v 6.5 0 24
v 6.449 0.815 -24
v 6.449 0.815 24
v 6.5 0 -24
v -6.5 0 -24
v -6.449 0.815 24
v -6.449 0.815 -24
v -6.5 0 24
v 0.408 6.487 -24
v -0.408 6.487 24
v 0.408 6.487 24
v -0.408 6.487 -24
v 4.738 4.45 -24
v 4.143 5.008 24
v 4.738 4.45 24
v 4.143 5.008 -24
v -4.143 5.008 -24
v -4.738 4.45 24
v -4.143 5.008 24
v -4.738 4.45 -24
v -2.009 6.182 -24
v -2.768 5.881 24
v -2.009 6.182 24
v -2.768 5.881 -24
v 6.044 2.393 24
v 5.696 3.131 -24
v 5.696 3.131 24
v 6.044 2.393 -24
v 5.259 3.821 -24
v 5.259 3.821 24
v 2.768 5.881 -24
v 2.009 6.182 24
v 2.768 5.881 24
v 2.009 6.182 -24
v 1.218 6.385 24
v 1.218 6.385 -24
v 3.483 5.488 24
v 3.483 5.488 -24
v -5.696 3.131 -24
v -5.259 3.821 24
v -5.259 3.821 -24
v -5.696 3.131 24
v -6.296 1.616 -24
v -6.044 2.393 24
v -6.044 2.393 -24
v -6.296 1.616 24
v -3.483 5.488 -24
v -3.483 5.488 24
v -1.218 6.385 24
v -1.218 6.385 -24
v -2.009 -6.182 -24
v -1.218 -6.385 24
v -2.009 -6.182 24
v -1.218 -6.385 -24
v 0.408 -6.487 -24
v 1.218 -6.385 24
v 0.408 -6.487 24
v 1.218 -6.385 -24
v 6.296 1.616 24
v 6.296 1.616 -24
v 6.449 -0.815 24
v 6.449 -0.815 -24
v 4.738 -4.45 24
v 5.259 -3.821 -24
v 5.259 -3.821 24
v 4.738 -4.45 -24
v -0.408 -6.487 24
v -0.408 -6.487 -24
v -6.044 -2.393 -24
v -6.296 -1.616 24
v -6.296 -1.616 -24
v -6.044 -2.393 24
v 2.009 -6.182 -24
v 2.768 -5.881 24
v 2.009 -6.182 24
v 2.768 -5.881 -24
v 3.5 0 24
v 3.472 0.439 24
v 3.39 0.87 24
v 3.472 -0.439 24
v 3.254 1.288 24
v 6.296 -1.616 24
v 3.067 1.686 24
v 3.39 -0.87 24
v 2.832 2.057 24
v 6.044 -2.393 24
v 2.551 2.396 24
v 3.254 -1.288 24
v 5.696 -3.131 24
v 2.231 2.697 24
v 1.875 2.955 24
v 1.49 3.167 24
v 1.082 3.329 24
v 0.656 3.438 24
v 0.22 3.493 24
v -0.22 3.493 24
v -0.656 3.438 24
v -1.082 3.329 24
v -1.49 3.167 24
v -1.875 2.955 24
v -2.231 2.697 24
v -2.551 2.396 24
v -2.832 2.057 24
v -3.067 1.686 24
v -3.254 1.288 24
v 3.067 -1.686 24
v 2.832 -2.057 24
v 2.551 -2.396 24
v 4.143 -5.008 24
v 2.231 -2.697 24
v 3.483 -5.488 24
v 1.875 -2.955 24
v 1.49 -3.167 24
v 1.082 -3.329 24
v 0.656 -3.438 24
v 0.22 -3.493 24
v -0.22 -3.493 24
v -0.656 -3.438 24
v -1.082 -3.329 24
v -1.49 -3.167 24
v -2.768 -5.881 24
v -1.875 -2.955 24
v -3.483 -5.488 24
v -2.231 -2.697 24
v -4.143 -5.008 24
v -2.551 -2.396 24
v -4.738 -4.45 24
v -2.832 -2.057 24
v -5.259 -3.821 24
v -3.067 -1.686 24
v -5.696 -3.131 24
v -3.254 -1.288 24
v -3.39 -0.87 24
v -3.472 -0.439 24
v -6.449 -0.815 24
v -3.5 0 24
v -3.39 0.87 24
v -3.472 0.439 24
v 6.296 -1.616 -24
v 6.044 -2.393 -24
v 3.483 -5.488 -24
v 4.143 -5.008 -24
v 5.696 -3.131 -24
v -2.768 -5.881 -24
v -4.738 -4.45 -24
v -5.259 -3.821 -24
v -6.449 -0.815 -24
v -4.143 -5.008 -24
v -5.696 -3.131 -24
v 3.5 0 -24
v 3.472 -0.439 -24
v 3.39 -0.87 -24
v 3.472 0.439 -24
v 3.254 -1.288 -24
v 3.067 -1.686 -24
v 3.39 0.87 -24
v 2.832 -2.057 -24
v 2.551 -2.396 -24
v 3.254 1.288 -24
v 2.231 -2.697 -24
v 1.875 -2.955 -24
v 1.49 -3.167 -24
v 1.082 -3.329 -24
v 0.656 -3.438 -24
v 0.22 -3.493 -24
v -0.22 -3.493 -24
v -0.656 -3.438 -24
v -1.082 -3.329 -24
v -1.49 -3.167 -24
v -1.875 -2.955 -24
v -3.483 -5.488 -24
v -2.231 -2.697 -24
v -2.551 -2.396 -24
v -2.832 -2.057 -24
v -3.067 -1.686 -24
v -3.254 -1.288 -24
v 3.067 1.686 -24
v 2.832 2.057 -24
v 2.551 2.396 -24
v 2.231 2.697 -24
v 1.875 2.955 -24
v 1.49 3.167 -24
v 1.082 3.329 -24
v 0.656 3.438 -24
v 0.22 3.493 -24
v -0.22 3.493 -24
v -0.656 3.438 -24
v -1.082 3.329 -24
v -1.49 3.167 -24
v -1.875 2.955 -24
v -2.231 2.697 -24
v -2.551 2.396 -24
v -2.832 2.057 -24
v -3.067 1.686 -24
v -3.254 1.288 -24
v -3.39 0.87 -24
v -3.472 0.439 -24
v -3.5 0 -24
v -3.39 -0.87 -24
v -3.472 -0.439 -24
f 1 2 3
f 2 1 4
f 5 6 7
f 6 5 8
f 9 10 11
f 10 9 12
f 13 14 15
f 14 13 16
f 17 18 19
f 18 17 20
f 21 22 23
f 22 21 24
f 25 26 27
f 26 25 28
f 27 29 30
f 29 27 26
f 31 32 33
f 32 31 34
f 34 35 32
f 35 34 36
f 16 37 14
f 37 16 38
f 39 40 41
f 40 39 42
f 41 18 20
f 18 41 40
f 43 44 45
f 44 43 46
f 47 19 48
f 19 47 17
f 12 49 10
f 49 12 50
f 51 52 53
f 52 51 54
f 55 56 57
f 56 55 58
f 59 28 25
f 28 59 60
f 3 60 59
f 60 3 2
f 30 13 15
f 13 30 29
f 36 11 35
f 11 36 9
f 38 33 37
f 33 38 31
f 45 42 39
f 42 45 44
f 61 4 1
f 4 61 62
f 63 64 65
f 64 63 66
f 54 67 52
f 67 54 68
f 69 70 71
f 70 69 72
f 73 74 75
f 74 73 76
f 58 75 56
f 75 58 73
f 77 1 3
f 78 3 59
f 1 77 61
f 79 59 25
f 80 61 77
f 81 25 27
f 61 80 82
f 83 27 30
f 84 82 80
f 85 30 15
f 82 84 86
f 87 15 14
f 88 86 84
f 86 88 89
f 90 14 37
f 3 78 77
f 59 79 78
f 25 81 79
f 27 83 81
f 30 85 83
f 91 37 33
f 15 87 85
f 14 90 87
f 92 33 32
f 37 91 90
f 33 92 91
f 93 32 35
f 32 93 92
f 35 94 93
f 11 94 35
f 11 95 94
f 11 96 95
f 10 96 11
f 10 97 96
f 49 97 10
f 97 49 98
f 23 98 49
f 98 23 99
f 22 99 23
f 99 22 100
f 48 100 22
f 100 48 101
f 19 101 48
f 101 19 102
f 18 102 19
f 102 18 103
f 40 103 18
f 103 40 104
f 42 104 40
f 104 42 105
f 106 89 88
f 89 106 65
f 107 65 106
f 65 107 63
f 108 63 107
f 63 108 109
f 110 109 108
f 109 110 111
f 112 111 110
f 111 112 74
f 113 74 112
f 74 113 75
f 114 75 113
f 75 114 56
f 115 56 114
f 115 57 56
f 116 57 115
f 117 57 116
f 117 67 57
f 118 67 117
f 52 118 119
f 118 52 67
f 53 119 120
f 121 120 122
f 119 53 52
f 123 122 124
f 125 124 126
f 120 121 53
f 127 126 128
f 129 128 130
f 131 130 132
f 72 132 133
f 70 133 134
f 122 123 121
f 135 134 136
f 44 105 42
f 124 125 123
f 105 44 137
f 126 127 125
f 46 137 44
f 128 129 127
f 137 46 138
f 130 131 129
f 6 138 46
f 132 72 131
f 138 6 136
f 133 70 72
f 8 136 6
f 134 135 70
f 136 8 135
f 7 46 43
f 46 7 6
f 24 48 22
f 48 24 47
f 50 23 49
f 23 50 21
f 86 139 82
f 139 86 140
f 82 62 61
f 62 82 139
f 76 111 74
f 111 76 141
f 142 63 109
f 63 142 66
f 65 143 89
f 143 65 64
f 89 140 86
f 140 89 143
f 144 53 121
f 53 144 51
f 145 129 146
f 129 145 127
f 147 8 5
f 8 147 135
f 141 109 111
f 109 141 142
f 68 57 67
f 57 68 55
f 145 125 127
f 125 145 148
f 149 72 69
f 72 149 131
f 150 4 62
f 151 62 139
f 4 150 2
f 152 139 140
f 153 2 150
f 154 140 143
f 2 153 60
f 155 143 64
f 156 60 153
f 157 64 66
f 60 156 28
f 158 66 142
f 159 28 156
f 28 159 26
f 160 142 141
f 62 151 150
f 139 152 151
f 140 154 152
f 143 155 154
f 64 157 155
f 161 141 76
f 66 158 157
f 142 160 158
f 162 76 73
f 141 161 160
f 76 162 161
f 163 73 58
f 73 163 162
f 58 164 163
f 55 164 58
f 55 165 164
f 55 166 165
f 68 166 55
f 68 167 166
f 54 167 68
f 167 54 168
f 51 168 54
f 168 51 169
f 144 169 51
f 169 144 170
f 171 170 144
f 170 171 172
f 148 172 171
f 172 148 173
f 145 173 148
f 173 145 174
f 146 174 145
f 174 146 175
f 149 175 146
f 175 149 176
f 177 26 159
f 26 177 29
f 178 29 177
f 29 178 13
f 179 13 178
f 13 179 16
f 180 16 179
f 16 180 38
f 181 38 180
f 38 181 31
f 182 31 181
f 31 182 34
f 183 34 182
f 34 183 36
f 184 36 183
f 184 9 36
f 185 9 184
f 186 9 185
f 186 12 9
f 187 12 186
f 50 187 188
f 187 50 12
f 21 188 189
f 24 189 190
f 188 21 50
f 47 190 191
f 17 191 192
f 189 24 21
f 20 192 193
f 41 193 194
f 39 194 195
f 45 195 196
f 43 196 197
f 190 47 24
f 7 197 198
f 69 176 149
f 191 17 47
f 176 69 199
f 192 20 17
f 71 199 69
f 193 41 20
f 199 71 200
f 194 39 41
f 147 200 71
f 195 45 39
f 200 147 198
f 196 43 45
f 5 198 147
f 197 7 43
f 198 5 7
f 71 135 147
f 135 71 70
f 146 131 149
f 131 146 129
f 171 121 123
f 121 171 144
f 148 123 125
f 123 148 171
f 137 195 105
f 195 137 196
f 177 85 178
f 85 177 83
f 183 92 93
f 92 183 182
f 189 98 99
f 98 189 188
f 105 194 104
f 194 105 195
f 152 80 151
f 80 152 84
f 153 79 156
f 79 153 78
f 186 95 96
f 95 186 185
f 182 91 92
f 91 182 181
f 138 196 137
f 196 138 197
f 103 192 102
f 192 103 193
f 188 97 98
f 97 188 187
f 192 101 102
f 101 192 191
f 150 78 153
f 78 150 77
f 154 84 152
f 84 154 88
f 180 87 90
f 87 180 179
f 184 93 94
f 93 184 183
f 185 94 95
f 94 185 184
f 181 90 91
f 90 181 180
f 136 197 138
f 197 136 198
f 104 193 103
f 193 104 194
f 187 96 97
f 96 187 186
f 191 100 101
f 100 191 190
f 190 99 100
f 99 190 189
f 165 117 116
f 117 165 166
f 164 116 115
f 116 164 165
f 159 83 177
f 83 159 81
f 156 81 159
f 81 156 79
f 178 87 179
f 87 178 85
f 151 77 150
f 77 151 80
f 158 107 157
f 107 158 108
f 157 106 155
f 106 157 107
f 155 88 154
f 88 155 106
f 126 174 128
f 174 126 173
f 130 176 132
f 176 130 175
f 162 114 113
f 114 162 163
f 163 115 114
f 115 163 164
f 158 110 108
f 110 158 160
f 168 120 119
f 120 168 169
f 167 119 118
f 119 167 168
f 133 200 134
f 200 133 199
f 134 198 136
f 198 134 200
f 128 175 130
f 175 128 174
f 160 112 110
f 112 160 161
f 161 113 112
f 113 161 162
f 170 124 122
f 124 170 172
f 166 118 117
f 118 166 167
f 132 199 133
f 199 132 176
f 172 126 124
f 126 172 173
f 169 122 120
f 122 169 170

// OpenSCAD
$fn = 50;


difference() {
	union() {
		translate(v = [0, 0, -24.0000000000]) {
			cylinder(h = 48, r = 6.5000000000);
		}
	}
	union() {
		translate(v = [0, 0, -100.0000000000]) {
			cylinder(h = 200, r = 3.5000000000);
		}
	}
}
